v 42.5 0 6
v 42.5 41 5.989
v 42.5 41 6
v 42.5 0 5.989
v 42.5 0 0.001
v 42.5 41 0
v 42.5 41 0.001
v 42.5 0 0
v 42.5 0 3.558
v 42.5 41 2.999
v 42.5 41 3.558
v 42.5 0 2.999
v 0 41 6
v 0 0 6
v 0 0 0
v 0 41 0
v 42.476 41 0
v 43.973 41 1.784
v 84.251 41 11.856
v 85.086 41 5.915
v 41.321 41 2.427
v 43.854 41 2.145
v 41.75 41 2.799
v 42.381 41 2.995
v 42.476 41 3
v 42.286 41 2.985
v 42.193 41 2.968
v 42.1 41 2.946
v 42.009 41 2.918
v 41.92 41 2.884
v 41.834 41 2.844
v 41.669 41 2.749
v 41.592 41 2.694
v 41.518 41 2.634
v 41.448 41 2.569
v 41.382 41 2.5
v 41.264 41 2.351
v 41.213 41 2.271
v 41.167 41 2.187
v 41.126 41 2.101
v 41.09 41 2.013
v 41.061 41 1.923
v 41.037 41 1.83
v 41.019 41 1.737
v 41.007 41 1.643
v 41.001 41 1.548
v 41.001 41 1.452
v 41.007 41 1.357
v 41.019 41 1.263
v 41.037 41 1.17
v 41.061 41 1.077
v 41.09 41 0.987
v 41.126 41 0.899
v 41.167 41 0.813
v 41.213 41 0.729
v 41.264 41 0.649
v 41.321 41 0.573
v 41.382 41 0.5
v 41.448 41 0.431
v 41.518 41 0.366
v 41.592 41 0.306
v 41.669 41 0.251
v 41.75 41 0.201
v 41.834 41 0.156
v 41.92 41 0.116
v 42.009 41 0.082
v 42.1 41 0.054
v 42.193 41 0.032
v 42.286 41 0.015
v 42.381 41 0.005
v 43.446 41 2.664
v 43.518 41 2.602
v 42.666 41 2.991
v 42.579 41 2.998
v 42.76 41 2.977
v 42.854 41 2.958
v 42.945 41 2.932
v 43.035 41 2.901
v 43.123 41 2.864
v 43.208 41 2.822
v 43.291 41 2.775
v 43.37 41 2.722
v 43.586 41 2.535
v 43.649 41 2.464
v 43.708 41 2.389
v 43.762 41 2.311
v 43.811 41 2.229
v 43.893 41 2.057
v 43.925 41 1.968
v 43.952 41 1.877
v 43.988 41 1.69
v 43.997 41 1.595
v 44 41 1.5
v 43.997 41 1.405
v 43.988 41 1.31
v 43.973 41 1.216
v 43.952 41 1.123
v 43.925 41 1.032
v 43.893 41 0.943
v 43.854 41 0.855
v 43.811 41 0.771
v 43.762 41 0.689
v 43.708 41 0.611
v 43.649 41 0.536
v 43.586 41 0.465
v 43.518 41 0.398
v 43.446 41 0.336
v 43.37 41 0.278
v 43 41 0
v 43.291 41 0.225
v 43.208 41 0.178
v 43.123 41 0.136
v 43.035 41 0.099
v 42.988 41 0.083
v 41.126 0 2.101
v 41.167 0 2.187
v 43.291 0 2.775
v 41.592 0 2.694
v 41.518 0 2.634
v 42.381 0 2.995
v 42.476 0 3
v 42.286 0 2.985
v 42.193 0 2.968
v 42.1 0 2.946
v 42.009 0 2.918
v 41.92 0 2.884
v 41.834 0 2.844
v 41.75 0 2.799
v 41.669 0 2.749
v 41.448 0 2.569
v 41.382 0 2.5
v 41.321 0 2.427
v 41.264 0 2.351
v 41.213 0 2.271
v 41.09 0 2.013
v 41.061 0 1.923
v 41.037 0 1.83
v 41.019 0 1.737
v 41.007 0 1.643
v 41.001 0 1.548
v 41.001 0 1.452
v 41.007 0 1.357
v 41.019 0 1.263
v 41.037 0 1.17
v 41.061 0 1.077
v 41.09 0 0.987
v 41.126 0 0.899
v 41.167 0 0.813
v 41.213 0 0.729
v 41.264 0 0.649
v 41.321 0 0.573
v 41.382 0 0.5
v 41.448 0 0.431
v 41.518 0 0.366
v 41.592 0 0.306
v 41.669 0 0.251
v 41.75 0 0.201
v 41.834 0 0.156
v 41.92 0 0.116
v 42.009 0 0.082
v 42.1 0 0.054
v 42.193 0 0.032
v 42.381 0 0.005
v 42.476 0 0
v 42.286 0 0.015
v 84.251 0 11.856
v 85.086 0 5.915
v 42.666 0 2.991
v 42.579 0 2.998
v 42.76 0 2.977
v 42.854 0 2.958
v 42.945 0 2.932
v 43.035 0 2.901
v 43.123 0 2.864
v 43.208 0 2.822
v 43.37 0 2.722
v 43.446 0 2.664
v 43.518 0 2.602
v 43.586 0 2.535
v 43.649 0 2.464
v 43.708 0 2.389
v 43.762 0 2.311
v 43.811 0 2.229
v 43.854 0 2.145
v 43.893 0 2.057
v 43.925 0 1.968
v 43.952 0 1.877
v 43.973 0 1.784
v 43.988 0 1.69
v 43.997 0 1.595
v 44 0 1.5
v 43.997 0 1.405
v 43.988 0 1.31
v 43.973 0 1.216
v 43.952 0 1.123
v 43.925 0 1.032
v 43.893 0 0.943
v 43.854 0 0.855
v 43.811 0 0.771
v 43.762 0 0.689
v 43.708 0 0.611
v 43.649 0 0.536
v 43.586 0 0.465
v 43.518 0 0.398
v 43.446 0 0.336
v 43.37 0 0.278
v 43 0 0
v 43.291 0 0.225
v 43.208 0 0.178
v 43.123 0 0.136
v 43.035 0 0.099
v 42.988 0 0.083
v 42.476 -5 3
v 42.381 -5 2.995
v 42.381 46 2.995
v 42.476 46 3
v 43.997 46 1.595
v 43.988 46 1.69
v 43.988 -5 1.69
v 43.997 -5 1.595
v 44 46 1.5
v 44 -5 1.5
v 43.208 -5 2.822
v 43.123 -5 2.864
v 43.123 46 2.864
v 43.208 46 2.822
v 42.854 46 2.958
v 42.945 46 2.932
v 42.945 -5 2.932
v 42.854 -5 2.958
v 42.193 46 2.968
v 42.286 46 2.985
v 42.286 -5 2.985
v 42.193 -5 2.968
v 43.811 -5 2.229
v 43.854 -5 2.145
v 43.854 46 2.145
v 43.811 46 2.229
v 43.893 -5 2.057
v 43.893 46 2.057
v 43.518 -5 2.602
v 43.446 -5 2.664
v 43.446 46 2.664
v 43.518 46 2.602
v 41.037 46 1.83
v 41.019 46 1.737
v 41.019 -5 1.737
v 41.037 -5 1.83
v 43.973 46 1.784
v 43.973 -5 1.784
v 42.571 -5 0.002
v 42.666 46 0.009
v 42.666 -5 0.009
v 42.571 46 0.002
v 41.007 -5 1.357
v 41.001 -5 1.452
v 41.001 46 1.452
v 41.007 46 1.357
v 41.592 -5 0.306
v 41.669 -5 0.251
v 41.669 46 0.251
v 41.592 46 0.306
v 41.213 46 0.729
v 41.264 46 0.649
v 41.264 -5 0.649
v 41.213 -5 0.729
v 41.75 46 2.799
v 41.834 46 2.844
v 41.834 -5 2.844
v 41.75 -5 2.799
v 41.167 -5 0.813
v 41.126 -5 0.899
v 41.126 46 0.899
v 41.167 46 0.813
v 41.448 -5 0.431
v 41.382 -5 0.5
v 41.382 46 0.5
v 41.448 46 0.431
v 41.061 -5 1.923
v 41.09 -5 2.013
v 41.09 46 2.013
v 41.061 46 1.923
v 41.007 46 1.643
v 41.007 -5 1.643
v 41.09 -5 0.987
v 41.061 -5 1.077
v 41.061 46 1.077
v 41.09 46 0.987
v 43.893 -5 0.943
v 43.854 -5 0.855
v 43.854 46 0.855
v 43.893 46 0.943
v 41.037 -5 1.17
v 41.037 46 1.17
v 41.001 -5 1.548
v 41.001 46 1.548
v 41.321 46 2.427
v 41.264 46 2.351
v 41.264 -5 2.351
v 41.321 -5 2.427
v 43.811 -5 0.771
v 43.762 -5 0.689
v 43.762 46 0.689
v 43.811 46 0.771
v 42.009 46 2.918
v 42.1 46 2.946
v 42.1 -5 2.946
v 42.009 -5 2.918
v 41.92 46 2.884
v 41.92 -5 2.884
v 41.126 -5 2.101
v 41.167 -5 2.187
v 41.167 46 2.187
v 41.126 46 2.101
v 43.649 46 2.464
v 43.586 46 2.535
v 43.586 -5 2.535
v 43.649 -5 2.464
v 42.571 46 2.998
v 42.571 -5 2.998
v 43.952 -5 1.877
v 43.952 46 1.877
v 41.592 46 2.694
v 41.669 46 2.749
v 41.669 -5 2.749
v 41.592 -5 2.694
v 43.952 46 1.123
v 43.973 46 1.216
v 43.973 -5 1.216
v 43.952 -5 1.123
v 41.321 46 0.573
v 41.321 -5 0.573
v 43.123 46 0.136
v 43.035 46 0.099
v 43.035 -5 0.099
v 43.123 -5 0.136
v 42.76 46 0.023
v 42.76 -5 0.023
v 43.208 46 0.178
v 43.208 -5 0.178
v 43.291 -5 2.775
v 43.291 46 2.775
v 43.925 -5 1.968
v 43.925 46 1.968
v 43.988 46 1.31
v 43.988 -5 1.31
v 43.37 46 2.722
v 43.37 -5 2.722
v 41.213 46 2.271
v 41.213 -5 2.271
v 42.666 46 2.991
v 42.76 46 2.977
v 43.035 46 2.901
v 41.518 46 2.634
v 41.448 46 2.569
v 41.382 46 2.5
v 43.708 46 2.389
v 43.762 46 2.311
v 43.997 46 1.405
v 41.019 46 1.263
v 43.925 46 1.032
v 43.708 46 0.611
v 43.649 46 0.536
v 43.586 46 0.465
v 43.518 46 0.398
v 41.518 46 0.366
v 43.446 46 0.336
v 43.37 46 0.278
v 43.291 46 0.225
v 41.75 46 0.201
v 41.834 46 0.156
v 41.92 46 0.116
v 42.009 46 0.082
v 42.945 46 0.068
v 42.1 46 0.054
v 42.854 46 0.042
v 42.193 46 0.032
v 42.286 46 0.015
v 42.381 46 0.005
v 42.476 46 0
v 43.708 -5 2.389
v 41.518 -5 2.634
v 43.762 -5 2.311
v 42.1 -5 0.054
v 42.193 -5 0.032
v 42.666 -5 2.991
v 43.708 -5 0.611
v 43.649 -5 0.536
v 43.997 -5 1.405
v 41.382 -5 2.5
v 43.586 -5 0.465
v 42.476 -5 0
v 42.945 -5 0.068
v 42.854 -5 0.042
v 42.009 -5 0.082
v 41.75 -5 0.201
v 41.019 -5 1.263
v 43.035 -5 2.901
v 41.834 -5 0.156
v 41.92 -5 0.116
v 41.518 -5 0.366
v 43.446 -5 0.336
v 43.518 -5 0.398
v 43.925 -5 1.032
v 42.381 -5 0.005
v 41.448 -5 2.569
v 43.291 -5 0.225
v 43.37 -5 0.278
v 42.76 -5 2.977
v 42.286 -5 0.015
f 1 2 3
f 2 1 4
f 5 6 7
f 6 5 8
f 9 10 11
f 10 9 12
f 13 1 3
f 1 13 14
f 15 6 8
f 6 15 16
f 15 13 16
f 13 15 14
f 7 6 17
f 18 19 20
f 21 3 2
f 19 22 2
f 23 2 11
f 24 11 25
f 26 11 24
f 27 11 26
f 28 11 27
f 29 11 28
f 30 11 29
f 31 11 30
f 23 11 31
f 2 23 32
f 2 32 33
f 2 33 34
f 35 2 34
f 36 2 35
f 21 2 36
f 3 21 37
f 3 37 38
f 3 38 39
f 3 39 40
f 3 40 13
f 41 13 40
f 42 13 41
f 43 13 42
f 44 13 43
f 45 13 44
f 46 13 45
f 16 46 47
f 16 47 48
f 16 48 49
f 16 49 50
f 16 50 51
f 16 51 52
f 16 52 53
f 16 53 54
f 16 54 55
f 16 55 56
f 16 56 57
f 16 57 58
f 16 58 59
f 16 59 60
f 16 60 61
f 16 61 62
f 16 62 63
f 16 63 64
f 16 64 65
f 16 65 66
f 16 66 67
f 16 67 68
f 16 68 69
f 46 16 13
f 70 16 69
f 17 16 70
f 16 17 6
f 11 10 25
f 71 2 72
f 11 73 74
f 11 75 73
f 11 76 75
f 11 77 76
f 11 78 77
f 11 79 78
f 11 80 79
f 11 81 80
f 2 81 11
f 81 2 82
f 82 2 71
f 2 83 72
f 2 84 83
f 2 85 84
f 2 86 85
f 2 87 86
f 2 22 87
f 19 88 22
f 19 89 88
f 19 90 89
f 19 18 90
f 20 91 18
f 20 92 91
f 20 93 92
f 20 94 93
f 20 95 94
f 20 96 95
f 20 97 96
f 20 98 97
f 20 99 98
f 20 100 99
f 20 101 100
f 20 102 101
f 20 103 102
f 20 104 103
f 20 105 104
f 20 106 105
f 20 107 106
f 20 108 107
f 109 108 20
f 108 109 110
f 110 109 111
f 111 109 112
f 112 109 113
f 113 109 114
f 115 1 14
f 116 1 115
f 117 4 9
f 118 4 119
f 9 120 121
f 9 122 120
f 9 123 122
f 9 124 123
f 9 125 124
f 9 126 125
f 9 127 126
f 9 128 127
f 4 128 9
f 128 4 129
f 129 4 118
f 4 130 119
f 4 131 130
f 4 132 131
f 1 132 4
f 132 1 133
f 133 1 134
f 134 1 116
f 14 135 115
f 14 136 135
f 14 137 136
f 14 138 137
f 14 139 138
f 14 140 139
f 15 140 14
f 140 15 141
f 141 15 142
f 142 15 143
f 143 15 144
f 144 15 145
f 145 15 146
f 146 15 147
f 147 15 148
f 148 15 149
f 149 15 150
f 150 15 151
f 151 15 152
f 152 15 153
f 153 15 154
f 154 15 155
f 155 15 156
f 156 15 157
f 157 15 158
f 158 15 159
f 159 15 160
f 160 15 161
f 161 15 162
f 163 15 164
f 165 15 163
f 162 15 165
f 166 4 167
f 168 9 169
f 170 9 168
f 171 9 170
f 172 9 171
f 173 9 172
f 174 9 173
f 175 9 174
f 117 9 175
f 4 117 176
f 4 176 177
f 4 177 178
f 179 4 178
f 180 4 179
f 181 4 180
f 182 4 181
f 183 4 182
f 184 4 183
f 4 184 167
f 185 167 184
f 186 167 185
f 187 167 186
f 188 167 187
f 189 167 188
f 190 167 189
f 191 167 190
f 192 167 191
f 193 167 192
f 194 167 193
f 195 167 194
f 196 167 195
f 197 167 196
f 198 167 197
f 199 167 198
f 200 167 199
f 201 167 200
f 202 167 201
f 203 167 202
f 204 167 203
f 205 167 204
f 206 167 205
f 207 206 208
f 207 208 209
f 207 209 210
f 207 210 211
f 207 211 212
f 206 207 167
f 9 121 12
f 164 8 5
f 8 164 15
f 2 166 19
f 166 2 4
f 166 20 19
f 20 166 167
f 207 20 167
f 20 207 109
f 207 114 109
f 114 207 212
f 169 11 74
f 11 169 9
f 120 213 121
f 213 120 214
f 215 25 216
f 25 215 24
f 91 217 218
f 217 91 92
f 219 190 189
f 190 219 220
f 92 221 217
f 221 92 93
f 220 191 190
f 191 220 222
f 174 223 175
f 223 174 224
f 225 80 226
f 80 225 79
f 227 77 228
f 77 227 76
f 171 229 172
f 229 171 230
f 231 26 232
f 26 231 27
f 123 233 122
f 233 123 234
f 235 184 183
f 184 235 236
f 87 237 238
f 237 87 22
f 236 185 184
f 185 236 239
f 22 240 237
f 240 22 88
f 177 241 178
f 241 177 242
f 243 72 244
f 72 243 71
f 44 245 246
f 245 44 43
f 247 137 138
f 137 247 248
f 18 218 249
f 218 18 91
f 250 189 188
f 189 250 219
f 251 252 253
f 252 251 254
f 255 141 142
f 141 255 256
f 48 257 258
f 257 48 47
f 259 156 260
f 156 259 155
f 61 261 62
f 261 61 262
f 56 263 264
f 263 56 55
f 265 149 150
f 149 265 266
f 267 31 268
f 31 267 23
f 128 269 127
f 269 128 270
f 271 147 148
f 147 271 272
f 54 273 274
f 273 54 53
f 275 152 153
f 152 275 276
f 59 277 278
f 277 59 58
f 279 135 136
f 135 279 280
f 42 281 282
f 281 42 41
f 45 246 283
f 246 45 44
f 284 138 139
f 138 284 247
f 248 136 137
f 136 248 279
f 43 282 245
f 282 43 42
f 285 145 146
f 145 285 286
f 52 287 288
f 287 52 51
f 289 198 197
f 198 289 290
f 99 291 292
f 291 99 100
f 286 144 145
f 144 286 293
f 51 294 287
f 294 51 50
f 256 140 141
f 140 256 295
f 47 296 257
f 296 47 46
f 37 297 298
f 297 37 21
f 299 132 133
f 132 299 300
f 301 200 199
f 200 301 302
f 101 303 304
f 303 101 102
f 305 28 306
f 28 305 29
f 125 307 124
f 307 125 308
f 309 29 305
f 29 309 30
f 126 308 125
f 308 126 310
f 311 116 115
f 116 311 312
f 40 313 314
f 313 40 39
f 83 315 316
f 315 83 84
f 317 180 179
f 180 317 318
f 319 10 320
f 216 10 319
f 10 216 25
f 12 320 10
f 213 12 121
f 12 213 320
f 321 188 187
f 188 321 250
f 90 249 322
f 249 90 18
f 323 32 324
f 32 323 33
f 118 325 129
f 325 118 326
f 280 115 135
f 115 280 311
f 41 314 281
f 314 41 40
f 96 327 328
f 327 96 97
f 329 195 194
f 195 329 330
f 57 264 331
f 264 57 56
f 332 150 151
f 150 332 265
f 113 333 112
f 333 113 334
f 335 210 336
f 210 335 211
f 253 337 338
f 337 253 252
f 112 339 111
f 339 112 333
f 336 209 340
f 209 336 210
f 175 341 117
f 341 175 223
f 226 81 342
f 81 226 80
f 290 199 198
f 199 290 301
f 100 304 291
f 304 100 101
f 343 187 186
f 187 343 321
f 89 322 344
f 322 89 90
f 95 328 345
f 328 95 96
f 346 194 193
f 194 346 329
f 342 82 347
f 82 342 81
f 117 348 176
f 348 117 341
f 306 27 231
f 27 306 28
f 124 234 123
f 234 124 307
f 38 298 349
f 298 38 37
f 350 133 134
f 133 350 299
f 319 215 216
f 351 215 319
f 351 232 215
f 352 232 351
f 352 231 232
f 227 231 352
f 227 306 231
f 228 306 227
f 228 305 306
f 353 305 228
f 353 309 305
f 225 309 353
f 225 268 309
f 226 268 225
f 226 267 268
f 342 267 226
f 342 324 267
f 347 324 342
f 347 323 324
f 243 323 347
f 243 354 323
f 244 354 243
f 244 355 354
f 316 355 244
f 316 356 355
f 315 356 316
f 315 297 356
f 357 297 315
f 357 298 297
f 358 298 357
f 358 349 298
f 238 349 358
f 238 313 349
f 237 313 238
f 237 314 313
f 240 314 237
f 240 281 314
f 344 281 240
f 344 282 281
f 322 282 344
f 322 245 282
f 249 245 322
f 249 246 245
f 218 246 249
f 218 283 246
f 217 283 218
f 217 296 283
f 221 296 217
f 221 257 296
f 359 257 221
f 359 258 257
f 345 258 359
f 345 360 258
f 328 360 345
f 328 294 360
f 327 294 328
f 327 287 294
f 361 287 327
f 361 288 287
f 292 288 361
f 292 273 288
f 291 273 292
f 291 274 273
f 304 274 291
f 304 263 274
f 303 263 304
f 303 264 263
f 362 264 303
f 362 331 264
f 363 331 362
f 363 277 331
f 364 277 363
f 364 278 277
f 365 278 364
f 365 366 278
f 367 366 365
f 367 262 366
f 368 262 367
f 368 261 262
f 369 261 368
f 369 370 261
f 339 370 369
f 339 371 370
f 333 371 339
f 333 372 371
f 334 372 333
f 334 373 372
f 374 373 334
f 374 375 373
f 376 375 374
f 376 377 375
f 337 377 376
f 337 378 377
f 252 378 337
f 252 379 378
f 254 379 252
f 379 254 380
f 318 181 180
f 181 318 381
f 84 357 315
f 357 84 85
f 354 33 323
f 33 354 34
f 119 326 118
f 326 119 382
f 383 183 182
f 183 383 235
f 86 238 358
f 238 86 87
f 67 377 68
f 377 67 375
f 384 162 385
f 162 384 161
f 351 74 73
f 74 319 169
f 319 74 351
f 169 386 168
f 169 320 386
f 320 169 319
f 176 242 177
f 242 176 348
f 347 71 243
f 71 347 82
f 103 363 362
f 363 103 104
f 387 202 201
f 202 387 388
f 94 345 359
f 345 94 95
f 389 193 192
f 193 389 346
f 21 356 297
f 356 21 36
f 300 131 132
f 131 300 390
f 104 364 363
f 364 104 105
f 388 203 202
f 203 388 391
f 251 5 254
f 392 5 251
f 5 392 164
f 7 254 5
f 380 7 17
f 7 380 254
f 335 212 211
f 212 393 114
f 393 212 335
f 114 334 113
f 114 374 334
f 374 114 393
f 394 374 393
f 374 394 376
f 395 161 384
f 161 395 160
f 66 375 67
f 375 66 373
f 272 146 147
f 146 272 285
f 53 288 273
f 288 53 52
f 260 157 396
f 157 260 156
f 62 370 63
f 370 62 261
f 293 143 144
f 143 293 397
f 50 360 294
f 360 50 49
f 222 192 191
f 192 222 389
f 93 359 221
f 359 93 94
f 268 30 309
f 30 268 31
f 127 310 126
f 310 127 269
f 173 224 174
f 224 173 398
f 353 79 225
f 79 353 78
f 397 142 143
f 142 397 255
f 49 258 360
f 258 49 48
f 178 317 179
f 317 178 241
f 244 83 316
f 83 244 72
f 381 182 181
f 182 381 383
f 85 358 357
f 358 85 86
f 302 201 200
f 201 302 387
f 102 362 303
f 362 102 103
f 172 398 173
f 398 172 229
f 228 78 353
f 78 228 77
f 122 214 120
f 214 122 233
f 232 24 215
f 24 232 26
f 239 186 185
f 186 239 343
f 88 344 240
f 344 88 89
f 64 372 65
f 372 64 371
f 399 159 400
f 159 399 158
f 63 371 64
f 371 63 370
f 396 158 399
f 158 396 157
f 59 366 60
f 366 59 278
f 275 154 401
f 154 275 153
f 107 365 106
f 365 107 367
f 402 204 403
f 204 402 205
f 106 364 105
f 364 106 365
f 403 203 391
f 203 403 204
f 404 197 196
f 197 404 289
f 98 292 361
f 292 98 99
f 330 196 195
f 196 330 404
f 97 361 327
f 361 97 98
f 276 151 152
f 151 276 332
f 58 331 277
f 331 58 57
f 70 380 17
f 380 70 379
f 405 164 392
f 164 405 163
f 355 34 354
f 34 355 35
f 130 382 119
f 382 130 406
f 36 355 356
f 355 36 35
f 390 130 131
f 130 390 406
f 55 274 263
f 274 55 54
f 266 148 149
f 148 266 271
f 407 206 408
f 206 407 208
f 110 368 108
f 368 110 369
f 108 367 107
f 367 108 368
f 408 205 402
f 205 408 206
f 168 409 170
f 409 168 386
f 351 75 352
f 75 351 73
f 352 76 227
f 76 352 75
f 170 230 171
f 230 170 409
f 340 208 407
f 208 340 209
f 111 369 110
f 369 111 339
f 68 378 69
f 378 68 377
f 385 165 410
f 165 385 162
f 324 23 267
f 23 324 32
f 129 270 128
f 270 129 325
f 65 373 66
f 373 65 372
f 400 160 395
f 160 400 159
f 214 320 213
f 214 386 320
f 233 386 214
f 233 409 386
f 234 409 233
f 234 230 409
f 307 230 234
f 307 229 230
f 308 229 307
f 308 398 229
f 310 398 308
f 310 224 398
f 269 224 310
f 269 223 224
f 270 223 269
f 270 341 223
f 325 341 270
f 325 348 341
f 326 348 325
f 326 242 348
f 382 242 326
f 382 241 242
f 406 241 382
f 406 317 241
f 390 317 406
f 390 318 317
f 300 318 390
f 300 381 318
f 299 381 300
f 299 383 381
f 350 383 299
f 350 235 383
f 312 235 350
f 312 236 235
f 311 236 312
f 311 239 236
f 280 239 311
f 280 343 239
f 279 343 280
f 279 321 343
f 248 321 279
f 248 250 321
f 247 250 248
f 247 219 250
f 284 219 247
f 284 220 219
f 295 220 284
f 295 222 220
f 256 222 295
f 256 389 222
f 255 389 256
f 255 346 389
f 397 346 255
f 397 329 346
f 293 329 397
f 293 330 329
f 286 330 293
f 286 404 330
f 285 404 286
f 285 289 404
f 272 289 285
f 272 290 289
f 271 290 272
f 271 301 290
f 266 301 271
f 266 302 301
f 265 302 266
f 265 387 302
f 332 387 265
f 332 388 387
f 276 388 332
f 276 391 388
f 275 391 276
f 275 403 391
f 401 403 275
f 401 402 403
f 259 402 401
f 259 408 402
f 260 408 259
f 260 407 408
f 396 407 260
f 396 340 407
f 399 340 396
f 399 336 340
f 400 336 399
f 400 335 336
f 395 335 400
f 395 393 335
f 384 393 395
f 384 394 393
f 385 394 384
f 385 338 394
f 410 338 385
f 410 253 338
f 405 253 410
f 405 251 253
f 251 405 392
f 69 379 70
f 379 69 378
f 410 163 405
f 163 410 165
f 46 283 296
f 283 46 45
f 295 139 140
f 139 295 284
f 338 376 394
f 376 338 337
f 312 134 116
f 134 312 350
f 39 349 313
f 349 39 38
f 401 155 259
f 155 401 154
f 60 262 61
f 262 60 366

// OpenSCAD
$fn = 60;

module switch(){
    union() {
        cube([42.5, 41, 6]);
        translate([43, 0, 0])
        rotate(a=-8, v=[0,1,0])
        cube([42.5, 41, 6]);
        translate([42.5, 46, 1.5])
        rotate(a=90, v=[1,0,0])
        cylinder(51, 1.5, 1.5, $fn=99);
    }
}

switch();
